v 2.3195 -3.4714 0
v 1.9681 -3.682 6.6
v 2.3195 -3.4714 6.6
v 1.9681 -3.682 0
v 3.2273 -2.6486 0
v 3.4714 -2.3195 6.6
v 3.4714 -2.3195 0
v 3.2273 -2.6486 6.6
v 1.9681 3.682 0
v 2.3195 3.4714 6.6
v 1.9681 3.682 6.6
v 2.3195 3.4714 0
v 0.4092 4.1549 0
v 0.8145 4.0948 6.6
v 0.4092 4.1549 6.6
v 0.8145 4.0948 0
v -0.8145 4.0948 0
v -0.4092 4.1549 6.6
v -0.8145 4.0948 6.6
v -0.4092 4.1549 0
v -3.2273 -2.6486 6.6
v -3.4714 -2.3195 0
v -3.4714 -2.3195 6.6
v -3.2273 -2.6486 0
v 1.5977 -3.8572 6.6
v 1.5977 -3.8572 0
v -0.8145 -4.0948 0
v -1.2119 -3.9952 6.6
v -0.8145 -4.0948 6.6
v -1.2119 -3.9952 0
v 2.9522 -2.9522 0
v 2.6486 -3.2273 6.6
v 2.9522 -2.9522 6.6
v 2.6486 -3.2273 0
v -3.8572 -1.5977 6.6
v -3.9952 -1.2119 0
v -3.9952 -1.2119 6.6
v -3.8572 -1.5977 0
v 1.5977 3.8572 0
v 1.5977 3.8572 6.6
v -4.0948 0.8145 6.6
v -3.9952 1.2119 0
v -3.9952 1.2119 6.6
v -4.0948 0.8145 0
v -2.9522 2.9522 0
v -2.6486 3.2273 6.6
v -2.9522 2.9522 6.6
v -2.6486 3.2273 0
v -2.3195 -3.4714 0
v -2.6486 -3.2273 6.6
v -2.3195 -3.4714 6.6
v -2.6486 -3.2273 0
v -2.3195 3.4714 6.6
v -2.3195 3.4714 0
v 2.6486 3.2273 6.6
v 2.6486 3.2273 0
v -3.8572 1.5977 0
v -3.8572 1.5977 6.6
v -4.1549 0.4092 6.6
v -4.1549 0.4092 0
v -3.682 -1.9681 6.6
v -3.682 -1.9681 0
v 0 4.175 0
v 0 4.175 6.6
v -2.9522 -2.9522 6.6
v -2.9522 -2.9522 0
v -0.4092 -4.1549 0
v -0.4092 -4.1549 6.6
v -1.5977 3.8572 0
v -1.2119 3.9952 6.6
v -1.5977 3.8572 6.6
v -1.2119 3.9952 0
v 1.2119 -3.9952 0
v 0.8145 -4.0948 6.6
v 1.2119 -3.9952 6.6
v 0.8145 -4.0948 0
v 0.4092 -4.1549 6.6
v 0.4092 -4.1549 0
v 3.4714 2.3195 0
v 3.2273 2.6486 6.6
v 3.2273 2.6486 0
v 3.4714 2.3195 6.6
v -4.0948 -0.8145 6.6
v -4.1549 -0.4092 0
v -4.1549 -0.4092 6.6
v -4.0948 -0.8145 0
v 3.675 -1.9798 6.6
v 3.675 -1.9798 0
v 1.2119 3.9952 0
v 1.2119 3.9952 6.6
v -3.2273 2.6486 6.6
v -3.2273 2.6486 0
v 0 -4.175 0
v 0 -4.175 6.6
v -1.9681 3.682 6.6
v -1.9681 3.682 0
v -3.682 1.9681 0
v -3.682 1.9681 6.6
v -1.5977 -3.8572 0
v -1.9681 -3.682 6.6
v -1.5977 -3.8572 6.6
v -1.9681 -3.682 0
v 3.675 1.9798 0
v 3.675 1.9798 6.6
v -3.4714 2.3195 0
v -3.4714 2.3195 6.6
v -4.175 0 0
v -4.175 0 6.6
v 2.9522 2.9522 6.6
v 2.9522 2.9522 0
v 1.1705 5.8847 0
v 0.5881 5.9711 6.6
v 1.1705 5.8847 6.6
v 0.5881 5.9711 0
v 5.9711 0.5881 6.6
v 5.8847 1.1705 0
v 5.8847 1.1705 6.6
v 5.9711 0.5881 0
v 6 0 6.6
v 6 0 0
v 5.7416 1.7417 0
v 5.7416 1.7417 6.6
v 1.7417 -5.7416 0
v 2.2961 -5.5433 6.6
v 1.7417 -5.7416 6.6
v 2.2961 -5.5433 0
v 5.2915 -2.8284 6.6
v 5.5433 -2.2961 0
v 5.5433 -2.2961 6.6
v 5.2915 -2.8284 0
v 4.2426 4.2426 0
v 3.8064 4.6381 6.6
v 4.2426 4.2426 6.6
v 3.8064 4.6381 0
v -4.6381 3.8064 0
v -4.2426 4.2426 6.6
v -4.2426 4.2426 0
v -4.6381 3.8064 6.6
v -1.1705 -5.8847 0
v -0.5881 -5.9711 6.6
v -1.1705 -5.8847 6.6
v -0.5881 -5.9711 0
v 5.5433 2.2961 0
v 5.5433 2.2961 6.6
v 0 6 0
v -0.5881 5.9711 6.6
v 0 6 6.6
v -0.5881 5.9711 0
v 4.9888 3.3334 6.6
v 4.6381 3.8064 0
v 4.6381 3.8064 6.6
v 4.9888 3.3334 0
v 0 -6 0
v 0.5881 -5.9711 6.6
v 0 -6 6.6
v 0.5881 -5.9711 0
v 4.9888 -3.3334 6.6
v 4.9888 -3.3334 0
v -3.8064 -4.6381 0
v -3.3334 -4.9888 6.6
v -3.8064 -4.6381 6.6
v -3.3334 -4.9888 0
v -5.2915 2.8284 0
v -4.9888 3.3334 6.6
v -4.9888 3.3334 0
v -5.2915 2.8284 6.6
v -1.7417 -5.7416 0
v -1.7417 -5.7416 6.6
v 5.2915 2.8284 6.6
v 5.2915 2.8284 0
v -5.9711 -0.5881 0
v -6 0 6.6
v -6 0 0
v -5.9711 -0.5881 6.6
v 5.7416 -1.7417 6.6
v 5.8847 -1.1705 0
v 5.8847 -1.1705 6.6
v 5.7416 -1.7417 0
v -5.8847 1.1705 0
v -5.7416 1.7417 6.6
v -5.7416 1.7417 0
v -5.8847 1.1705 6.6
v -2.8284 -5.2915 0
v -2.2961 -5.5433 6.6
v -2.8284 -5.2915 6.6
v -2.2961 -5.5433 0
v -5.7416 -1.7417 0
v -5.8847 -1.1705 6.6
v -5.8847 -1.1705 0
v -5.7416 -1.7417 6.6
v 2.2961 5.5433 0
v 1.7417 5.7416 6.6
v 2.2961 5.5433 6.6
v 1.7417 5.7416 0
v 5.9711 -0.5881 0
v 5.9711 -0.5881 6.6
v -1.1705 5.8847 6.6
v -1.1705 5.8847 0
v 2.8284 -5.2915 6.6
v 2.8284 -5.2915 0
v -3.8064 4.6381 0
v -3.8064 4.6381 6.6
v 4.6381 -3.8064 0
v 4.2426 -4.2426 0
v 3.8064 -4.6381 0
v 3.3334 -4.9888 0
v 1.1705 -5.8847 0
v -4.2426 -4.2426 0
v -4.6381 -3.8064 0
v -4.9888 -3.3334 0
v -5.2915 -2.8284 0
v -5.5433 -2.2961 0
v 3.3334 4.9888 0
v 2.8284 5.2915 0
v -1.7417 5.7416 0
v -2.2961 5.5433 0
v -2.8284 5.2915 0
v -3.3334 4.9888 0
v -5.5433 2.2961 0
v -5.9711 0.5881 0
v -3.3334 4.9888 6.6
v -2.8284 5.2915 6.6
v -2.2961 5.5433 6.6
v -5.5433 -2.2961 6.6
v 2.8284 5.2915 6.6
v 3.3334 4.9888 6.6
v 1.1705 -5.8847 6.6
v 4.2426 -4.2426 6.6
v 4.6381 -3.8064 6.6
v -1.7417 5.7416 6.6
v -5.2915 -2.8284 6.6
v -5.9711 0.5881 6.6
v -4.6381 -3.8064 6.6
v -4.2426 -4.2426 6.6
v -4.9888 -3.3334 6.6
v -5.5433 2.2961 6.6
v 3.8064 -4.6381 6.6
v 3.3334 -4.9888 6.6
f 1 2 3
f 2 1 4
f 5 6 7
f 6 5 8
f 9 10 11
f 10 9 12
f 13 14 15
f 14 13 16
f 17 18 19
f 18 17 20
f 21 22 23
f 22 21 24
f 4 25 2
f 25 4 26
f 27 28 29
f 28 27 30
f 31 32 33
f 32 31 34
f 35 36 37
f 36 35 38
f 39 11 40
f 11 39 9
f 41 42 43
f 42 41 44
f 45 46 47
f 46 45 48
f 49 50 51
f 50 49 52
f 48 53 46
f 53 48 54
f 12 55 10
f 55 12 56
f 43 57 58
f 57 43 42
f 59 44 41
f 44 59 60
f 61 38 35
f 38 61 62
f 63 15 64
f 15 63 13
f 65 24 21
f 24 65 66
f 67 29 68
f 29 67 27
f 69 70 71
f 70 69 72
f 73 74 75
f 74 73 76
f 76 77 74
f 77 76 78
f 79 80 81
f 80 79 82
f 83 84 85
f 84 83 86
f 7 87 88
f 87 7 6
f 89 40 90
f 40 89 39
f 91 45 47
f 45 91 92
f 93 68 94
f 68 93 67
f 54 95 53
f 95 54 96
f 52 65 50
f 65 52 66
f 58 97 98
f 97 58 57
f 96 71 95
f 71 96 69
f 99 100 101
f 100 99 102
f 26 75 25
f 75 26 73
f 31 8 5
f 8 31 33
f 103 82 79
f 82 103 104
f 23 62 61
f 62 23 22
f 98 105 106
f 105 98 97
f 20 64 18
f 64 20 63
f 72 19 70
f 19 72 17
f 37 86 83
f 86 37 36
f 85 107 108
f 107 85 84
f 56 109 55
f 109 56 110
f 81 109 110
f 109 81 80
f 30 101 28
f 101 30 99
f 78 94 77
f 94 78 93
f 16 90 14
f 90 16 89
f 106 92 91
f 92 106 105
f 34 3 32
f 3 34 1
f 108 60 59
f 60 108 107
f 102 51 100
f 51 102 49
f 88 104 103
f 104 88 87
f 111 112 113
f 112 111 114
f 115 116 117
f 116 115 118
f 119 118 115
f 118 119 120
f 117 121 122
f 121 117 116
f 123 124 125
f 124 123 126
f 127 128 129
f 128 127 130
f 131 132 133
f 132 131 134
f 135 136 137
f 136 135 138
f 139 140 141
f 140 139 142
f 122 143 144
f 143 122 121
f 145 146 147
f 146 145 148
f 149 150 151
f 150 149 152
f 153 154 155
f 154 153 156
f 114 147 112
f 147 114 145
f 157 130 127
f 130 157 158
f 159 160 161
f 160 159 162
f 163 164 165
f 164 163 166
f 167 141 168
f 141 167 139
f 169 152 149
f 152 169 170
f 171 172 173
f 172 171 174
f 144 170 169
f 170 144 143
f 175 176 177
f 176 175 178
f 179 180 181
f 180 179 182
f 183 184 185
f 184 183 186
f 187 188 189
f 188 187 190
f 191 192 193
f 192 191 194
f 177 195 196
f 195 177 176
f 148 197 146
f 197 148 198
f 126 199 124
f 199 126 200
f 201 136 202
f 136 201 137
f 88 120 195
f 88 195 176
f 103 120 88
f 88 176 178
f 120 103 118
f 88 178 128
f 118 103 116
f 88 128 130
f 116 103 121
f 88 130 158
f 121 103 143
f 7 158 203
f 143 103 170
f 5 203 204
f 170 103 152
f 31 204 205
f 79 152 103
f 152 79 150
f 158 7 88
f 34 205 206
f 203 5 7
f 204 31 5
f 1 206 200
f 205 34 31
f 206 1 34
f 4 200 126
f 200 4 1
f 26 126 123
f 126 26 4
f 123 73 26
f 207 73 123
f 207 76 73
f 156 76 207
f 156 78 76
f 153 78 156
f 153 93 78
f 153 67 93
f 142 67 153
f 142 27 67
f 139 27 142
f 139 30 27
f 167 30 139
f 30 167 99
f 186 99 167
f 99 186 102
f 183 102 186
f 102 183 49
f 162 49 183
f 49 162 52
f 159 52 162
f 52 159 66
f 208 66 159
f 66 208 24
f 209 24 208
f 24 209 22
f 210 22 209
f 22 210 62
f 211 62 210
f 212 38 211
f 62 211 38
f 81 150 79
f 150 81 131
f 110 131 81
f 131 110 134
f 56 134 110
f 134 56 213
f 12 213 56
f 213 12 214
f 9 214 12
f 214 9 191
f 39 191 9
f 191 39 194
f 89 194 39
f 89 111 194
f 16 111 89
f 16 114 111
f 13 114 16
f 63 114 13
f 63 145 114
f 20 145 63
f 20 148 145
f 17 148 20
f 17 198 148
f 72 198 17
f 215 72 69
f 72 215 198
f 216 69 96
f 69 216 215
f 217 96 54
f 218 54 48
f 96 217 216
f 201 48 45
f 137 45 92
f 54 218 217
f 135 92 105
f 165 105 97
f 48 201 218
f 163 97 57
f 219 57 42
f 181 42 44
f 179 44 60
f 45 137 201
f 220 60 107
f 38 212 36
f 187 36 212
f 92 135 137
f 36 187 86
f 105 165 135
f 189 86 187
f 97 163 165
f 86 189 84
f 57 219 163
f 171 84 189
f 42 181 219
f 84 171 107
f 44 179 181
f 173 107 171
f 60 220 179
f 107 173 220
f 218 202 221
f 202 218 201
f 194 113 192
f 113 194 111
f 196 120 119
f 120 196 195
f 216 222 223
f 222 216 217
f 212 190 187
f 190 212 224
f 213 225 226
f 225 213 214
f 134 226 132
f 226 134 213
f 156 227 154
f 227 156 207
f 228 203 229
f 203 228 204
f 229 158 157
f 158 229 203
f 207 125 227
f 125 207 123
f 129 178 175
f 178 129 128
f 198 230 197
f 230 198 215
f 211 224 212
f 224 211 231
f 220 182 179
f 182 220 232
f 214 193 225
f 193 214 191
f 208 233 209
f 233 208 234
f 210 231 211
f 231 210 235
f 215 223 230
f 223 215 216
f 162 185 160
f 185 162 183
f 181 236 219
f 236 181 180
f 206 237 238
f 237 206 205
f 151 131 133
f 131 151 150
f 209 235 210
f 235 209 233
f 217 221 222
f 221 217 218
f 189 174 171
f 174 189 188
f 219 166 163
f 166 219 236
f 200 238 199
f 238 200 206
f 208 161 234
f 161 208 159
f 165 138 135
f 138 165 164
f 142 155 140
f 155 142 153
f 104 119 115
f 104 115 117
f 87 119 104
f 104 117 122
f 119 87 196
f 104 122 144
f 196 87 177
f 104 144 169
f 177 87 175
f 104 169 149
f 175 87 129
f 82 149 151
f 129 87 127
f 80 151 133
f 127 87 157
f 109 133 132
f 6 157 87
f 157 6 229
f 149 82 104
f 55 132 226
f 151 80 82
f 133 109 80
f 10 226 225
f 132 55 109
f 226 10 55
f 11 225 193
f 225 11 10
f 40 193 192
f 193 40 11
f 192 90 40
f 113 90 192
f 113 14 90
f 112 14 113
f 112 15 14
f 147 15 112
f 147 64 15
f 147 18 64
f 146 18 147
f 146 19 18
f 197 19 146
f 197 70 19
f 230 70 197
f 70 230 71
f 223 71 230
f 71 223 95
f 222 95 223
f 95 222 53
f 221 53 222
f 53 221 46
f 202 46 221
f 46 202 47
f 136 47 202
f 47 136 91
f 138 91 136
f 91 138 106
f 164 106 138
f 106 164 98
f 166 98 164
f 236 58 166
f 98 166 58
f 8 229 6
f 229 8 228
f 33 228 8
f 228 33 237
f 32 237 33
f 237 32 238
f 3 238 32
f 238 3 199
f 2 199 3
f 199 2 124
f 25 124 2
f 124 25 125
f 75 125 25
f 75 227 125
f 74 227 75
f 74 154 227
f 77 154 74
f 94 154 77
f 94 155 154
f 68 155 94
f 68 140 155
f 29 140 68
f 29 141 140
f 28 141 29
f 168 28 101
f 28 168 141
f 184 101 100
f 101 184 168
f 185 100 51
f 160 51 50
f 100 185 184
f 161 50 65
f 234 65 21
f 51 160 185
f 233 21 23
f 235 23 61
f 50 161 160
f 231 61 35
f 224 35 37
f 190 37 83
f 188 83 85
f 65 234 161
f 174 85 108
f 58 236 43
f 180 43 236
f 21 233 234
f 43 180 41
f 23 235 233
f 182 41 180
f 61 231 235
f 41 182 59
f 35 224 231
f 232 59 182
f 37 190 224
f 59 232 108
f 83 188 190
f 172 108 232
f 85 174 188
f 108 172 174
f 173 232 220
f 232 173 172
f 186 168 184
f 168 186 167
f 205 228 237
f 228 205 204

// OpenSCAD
// file: parameters.scad
// =============================================================================
// Gen-CL — nightly 2026-10-16 (physics_scorer, honest magpylib watts)
// Modular swap: exactly the Gen-CJ rotors, arcs and steel, on a thinner-copper stator (4.0 mm copper, so the magnet faces close in by 0.5 mm) that needs only ≈300 m of 26 AWG — the rest of the spool stays free. Swap stators by changing the gap sleeve only.
// Clocking 0 deg (magnets N facing S) + D-flat keyed bore + index notch + flip-symmetric hole map.
// Windable 2-piece bobbin; turns = physics_scorer turns_fit; copper only between flanges.
// Steel back-iron: 2× Ø198 × 4.76 mm (3/16") mild-steel discs (steel_backiron_disc.dxf); magnets sit ON the steel
// (through-pockets) -> score with --back-iron. Night 2026-10-16.
// =============================================================================
topology            = "dual_rotor";

// --- Wire / winding (physics_scorer winding-fit) -------------------------------
wire_awg            = 26;
wire_od             = 0.45;     // insulated OD mm (bare 0.405)
fill_realistic      = 0.65;     // insulated-wire area / window (DENSE layered wind with a jig; scorer cap 0.65)
turns               = 196;       // = physics_scorer turns_fit (do NOT raise)
coil_former_type    = "bobbin";
coil_core_inset     = 12.00;     // radial copper build: hub = copper boundary inset by this
wind_build_axial    = 0.0;      // nothing proud of the flanges
wind_build_radial   = 0.0;

// --- Bobbin (base + lid) ---------------------------------------------------------
coil_id_r           = 50.00;    // copper boundary sector
coil_od_r           = 104.00;
span_deg            = 25.99;    // = pitch - 2*asin((wall+0.85)/coil_id_r) -> >=1.2 mm stator web
former_web          = 4.00;     // copper height between flanges (TALL copper: steel keeps Bz up)
flange_t            = 0.80;     // >= 0.8 mm FDM wall rule (tall winds push on the flanges)
wall                = 0.80;     // flange lip beyond copper
former_bare_h       = former_web + 2 * flange_t;
coil_envelope_h     = former_bare_h + 2 * wind_build_axial;
tab_w               = 7.0;
tab_len             = 7.0;
tab_h               = former_bare_h / 2;
pin_d               = 1.9;      // 1.75 mm filament locating pin
coil_mount_r        = coil_od_r + 0.2 + 4.0;
lead_y              = 1.6;
lead_slot_w         = 0.9;
lead_groove_d       = 0.6;

// --- Gap -------------------------------------------------------------------------
run_clear           = 0.50;     // rotor face -> flange
gap_spacer_h        = run_clear + wind_build_axial;
m2m                 = coil_envelope_h + 2 * run_clear;   // rotor face to rotor face (= gap_sleeve length)

// --- Stator ----------------------------------------------------------------------
coil_stations       = 12;
bay_clear           = 0.35;     // 0.35 mm: bobbin BASES print IN PLACE inside the stator bays (print-in-place gap), then pop out
stator_thick        = former_bare_h;                        // bobbins flush both faces
stator_od           = 229.0;
shaft_clear_stator  = 14.0;     // stator is static; gap sleeve OD 12 spins inside
stator_ir           = 44.85;    // ANNULAR stator: open centre (nested one-plate pack); inner rim 4.0 mm

// --- Rotor(s) --------------------------------------------------------------------
magnet_Br           = 1.43;     // N52
magnet_d_large      = 20.0;
magnet_h_large      = 5.0;      // one O20x5 per pocket
magnet_h_small      = 5.0;      // one O5x5 per pocket
halbach_magnetisation = "diametric"; // O5x5 assist magnets MUST be DIAMETRICALLY magnetised (tangential)
rotor_b_same_axis   = true;     // same-index magnets share one axis: N faces S across the gap
large_pocket_d      = 20.3;
small_pocket_d      = 5.3;
pocket_h            = 5.00;     // THROUGH the carrier: magnet back face sits on the steel disc (FLUSH seat: carrier = magnet height, magnet face level with the rotor face)
large_n             = 8;
R_large             = 86.0;
R_small_inner       = 79.8;
R_small_mid         = 86.0;
R_small_outer       = 92.2;
small_r_list        = [R_small_inner, R_small_mid, R_small_outer];   // O5 pockets between poles
// --- N42 rectangular BLOCK magnets (2026-10-16/17): one 20x10x5 block per pole, radially INSIDE the O20 disc ---
block_R_list        = [64.5];   // block centre radius (pole angle); same polarity as its O20 -> radially extended pole
block_angle_list    = [0];
block_radial        = 20.0;    // block side that runs RADIALLY (mm)
block_tangential    = 10.0;    // block side that runs TANGENTIALLY (mm)
block_h             = 5.0;     // magnetised through the 5 mm thickness (axial), = magnet_h_large so it sits on the steel
block_Br            = 1.29;    // N42 remanence (1.28-1.32 T); scorer models it as a magpylib Cuboid
block_pocket_clear  = 0.3;    // pocket = block + 0.3 mm each way (+ 1.2 mm corner reliefs)
carrier_od          = 198.0;
ring_ir             = 51.35;    // RING rotor: PLA magnet ring r ring_ir..carrier_od/2 (steel disc = structural rotor)
hub_flange_od       = 58.0;     // separate rotor_hub flange (inside the ring, flush with the ring face)
csk_d               = 6.6;      // M3 countersunk head pocket (ISO 10642 head 6.0 nominal) on the stator face
csk_depth           = 1.55;     // = (csk_d - m3_clear) / 2: 90 deg cone; head sits 0.3 mm below the face
n_seg               = 8;        // magnet-carrier ARCS per rotor (segmented carrier)
seg_deg             = 360 / n_seg;
seg_start           = -32;   // arc edge angle (between pocket 0 and its clamp bolt)
seg_kerf_deg        = 0.4;      // gap between neighbouring arcs on the steel
carrier_thick       = pocket_h;
hub_h               = 12.0;     // > steel_t + insert: radial set-screw clears the steel
hub_od              = 24.0;     // slim hub so the M4 brace rods fit at R~18 inside the coil ring
hub_insert_d        = 4.0;      // M3 heat-set insert, radial, bears on the D-flat
rotor_b_offset_deg  = 0.0;      // CLOCKING: magnets directly opposite
shaft_key           = "dflat";
dflat_depth         = 0.5;      // 8 mm shaft with 0.5 mm flat (7.5 across flat)
index_notch_d       = 3.0;

// --- Steel back-iron (buyable laser-cut) -------------------------------------------
steel_t             = 4.76;      // mild steel thickness (image method ignores it; sized from steel_flux.py so the return path stays well below saturation)
steel_center_hole   = 26.0;     // slips over the rotor hub (OD 24)
steel_od            = carrier_od;   // steel disc OD = rotor carrier OD

// --- Modular MAX interface ----------------------------------------------------------
shaft_bore          = 8.35;
dflat_x             = 4.0 - dflat_depth + (shaft_bore - 8.0) / 2;
bearing_d           = 21.85;
bearing_h           = 7.2;
m3_clear            = 3.5;
bolt_r_inner        = 22.0;     // M3 steel-disc clamp bolts (inside the magnet ring)
bolt_n_inner        = 4;
bolt_inner_angles   = [0, 90, 180, 270];
bolt_r_outer        = 86.0;     // second M3 steel-disc clamp ring
bolt_outer_angles   = [13.0, 32.0, 58.0, 77.0, 103.0, 122.0, 148.0, 167.0, 193.0, 212.0, 238.0, 257.0, 283.0, 302.0, 328.0, 347.0];
flange_bolt_r       = 109.5;     // frame rods: OUTSIDE the rotor OD (rotors spin inside them)
flange_bolt_n       = 4;
flange_bolt_offset  = 45.00;    // between coil stations -> never cuts a lead groove/tab
brace_r             = 18.0;
brace_d             = 4.3;      // temporary M4 jack rods (assembly only)
brace_n             = 4;
brace_angles        = [45, 135, 225, 315];          // flip-symmetric

spacer_pad_od       = 14.0;
spacer_pad_id       = m3_clear;
endbell_od          = 229.0;
endbell_thick       = 8.0;
endbell_shaft_clear = 10.0;
collar_h            = 10.0;
standoff_od         = 9.0;
frame_standoff_h    = run_clear + carrier_thick + hub_h + collar_h + 2.0;
sleeve_od           = 12.0;
plate_max_mm        = 410;

$fn = 64;
// main file
// Gen-CL — gap sleeve: rigid spacer on the shaft BETWEEN the two rotor carriers (passes through the stator
// hole). Length = m2m, so it sets the magnet gap and carries the full magnet pull. Print x1, upright.
include <parameters.scad>;
$fn = 64;
// D-flat keyed bore: flat faces +X (angle 0 = magnet pocket 0 = index notch)
module dflat_bore(h) {
    intersection() {
        cylinder(d=shaft_bore, h=h);
        translate([-shaft_bore, -shaft_bore, 0]) cube([shaft_bore + dflat_x, 2*shaft_bore, h]);
    }
}

difference() {
    cylinder(d=sleeve_od, h=m2m);
    translate([0, 0, -0.1]) dflat_bore(m2m + 0.2);
}
